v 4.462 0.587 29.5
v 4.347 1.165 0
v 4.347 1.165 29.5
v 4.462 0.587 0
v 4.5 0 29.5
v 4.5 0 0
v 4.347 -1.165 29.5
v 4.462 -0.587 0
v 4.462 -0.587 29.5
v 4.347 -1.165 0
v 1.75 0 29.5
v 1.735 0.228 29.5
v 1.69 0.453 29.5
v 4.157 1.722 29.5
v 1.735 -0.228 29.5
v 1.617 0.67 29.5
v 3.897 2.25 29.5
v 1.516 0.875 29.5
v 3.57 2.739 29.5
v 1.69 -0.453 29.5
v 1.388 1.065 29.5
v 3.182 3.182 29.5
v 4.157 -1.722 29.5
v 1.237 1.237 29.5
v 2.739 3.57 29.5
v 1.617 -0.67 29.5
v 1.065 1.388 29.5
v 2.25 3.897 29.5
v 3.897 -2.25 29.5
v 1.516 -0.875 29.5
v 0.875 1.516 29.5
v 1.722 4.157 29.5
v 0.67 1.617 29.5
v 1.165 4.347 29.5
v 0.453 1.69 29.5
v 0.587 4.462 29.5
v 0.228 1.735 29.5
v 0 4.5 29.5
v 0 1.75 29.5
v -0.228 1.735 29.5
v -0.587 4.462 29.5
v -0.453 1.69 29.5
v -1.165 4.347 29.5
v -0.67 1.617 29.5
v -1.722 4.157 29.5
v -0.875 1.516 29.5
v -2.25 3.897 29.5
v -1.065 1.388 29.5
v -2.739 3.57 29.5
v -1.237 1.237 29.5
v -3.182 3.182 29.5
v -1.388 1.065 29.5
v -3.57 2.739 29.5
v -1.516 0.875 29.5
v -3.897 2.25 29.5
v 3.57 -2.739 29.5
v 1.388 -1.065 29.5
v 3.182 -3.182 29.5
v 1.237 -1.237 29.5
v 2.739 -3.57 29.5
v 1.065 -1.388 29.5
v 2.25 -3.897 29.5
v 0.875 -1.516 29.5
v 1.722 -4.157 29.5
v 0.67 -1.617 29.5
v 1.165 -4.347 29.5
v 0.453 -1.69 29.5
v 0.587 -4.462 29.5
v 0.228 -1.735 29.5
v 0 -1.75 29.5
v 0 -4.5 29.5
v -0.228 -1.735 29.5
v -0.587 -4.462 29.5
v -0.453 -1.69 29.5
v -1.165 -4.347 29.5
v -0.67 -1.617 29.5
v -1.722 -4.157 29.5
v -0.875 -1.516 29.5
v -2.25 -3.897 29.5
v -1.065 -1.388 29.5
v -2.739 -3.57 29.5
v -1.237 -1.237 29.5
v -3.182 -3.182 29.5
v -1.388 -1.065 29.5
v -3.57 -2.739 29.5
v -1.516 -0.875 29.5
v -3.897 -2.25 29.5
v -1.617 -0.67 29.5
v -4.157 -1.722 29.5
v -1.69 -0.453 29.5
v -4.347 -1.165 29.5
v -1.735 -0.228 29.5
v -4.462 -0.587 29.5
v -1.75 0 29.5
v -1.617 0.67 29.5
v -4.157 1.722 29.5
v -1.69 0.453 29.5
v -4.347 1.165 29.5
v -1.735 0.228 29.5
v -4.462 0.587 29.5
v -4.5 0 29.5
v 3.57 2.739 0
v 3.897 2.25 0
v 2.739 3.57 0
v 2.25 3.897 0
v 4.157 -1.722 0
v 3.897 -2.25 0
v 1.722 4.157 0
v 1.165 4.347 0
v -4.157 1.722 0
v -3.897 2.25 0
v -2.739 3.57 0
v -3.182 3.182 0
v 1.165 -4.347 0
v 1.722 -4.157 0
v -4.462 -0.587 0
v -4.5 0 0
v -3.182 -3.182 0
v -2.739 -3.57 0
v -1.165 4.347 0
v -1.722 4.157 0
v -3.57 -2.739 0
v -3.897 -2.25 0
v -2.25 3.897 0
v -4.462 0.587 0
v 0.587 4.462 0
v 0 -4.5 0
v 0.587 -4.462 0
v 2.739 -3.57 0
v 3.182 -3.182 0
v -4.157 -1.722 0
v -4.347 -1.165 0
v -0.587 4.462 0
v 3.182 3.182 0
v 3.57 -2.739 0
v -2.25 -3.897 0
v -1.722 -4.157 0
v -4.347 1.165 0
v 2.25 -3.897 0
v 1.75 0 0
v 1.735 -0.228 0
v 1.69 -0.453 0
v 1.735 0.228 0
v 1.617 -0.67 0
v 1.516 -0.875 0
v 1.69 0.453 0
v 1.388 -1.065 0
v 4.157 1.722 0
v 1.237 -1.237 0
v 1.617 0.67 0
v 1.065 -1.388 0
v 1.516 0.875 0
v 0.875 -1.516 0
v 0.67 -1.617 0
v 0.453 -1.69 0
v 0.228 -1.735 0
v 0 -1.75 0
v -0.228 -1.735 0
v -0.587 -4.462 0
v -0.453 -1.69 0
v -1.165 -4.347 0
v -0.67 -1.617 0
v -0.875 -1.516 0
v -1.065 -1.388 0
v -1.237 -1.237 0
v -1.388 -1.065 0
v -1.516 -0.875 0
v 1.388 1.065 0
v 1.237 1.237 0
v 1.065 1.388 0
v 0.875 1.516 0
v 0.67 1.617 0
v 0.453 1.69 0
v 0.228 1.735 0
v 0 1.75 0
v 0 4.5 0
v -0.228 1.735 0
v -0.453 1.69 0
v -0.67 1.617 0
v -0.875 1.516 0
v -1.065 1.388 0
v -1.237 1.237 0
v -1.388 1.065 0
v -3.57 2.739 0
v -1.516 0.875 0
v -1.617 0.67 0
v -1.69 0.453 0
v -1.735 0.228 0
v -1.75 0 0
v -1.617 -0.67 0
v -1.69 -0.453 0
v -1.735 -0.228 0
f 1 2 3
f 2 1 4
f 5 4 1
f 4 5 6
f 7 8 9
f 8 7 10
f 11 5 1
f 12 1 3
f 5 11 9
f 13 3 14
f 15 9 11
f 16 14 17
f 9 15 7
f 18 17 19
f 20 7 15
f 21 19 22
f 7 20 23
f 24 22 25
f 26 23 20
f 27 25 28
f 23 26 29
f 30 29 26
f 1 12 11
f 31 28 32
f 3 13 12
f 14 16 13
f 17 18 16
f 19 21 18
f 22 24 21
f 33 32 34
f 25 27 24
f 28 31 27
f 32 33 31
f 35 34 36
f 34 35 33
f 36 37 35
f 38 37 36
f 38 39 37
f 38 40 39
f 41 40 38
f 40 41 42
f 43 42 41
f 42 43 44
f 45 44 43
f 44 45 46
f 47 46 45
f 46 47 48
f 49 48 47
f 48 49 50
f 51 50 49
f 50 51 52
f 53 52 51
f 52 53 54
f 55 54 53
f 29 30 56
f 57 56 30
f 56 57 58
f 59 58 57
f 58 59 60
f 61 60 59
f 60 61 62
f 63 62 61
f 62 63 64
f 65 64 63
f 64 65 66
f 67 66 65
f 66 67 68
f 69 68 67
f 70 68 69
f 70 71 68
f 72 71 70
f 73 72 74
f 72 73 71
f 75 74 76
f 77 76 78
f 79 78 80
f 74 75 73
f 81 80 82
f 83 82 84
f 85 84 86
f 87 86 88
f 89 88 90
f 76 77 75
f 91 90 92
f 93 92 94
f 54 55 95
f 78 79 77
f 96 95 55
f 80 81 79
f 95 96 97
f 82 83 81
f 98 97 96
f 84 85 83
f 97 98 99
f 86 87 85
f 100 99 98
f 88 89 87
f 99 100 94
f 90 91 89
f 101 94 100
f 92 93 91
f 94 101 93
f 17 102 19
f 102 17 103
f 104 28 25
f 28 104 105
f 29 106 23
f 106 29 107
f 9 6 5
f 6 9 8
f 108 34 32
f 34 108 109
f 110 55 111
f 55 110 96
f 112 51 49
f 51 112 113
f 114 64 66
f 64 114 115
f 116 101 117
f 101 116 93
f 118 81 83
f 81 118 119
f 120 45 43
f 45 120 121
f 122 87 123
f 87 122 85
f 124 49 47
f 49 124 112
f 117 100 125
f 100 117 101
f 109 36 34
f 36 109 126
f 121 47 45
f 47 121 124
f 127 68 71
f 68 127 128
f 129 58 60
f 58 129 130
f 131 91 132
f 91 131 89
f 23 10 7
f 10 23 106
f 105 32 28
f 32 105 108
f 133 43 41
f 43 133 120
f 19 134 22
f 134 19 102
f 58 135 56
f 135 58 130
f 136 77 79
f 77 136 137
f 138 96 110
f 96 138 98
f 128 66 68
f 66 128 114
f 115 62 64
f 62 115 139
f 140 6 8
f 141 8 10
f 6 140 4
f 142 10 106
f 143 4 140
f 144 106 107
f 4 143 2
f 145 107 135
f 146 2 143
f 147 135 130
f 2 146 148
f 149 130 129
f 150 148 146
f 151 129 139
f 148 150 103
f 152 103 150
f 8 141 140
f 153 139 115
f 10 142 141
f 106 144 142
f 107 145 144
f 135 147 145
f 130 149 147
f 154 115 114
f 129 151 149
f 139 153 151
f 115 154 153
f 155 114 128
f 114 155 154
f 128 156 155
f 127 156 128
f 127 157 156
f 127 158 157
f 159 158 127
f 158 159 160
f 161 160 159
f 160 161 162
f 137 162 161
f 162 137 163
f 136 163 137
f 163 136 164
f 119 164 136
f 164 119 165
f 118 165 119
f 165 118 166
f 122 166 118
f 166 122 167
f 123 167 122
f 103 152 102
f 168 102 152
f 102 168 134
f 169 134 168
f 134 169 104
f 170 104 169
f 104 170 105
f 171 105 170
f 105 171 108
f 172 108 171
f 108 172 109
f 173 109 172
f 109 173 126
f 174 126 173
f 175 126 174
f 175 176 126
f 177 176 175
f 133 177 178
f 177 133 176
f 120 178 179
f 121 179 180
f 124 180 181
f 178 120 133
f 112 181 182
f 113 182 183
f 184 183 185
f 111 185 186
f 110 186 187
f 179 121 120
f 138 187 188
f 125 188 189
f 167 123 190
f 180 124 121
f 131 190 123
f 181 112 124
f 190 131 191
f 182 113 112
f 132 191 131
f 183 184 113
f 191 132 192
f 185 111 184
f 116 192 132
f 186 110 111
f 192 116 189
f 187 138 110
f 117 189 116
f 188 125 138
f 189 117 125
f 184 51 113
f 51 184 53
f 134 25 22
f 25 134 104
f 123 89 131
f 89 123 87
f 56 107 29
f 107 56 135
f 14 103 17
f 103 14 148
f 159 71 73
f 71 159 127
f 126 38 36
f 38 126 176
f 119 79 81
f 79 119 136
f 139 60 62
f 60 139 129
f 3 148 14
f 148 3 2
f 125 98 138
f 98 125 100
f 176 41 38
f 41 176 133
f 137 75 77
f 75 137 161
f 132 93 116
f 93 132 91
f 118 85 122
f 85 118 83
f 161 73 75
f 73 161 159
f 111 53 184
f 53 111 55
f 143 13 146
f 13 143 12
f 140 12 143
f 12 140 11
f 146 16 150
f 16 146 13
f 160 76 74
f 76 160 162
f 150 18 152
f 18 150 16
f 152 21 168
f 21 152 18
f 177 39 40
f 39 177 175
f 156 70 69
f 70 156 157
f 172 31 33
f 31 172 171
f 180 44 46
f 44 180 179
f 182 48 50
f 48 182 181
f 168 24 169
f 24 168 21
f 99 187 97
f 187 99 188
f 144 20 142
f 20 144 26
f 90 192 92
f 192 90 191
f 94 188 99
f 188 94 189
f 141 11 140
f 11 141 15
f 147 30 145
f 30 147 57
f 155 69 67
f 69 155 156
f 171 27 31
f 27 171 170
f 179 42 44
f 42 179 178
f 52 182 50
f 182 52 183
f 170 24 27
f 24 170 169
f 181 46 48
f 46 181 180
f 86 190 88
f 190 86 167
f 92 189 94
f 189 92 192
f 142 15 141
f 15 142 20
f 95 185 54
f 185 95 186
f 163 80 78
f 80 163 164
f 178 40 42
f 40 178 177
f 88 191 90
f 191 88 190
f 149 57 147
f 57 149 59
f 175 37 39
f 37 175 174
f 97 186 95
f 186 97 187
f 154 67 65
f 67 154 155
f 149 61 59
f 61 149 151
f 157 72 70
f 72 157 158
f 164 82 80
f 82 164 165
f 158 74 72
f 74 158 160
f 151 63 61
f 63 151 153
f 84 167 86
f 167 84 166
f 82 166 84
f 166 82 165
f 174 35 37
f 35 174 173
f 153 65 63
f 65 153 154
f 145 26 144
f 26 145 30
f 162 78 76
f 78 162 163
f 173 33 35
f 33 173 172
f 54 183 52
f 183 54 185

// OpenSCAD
// Gen-CX — frame standoff tube between stator and an endbell, on each M3 frame rod (outside rotor OD).
// Print x4. Height = frame_standoff_h (rotor + steel + hub + collar + running clearance).
include <parameters.scad>;
$fn = 48;
difference() {
    cylinder(d=standoff_od, h=frame_standoff_h);
    translate([0, 0, -0.1]) cylinder(d=m3_clear, h=frame_standoff_h + 0.2);
}
